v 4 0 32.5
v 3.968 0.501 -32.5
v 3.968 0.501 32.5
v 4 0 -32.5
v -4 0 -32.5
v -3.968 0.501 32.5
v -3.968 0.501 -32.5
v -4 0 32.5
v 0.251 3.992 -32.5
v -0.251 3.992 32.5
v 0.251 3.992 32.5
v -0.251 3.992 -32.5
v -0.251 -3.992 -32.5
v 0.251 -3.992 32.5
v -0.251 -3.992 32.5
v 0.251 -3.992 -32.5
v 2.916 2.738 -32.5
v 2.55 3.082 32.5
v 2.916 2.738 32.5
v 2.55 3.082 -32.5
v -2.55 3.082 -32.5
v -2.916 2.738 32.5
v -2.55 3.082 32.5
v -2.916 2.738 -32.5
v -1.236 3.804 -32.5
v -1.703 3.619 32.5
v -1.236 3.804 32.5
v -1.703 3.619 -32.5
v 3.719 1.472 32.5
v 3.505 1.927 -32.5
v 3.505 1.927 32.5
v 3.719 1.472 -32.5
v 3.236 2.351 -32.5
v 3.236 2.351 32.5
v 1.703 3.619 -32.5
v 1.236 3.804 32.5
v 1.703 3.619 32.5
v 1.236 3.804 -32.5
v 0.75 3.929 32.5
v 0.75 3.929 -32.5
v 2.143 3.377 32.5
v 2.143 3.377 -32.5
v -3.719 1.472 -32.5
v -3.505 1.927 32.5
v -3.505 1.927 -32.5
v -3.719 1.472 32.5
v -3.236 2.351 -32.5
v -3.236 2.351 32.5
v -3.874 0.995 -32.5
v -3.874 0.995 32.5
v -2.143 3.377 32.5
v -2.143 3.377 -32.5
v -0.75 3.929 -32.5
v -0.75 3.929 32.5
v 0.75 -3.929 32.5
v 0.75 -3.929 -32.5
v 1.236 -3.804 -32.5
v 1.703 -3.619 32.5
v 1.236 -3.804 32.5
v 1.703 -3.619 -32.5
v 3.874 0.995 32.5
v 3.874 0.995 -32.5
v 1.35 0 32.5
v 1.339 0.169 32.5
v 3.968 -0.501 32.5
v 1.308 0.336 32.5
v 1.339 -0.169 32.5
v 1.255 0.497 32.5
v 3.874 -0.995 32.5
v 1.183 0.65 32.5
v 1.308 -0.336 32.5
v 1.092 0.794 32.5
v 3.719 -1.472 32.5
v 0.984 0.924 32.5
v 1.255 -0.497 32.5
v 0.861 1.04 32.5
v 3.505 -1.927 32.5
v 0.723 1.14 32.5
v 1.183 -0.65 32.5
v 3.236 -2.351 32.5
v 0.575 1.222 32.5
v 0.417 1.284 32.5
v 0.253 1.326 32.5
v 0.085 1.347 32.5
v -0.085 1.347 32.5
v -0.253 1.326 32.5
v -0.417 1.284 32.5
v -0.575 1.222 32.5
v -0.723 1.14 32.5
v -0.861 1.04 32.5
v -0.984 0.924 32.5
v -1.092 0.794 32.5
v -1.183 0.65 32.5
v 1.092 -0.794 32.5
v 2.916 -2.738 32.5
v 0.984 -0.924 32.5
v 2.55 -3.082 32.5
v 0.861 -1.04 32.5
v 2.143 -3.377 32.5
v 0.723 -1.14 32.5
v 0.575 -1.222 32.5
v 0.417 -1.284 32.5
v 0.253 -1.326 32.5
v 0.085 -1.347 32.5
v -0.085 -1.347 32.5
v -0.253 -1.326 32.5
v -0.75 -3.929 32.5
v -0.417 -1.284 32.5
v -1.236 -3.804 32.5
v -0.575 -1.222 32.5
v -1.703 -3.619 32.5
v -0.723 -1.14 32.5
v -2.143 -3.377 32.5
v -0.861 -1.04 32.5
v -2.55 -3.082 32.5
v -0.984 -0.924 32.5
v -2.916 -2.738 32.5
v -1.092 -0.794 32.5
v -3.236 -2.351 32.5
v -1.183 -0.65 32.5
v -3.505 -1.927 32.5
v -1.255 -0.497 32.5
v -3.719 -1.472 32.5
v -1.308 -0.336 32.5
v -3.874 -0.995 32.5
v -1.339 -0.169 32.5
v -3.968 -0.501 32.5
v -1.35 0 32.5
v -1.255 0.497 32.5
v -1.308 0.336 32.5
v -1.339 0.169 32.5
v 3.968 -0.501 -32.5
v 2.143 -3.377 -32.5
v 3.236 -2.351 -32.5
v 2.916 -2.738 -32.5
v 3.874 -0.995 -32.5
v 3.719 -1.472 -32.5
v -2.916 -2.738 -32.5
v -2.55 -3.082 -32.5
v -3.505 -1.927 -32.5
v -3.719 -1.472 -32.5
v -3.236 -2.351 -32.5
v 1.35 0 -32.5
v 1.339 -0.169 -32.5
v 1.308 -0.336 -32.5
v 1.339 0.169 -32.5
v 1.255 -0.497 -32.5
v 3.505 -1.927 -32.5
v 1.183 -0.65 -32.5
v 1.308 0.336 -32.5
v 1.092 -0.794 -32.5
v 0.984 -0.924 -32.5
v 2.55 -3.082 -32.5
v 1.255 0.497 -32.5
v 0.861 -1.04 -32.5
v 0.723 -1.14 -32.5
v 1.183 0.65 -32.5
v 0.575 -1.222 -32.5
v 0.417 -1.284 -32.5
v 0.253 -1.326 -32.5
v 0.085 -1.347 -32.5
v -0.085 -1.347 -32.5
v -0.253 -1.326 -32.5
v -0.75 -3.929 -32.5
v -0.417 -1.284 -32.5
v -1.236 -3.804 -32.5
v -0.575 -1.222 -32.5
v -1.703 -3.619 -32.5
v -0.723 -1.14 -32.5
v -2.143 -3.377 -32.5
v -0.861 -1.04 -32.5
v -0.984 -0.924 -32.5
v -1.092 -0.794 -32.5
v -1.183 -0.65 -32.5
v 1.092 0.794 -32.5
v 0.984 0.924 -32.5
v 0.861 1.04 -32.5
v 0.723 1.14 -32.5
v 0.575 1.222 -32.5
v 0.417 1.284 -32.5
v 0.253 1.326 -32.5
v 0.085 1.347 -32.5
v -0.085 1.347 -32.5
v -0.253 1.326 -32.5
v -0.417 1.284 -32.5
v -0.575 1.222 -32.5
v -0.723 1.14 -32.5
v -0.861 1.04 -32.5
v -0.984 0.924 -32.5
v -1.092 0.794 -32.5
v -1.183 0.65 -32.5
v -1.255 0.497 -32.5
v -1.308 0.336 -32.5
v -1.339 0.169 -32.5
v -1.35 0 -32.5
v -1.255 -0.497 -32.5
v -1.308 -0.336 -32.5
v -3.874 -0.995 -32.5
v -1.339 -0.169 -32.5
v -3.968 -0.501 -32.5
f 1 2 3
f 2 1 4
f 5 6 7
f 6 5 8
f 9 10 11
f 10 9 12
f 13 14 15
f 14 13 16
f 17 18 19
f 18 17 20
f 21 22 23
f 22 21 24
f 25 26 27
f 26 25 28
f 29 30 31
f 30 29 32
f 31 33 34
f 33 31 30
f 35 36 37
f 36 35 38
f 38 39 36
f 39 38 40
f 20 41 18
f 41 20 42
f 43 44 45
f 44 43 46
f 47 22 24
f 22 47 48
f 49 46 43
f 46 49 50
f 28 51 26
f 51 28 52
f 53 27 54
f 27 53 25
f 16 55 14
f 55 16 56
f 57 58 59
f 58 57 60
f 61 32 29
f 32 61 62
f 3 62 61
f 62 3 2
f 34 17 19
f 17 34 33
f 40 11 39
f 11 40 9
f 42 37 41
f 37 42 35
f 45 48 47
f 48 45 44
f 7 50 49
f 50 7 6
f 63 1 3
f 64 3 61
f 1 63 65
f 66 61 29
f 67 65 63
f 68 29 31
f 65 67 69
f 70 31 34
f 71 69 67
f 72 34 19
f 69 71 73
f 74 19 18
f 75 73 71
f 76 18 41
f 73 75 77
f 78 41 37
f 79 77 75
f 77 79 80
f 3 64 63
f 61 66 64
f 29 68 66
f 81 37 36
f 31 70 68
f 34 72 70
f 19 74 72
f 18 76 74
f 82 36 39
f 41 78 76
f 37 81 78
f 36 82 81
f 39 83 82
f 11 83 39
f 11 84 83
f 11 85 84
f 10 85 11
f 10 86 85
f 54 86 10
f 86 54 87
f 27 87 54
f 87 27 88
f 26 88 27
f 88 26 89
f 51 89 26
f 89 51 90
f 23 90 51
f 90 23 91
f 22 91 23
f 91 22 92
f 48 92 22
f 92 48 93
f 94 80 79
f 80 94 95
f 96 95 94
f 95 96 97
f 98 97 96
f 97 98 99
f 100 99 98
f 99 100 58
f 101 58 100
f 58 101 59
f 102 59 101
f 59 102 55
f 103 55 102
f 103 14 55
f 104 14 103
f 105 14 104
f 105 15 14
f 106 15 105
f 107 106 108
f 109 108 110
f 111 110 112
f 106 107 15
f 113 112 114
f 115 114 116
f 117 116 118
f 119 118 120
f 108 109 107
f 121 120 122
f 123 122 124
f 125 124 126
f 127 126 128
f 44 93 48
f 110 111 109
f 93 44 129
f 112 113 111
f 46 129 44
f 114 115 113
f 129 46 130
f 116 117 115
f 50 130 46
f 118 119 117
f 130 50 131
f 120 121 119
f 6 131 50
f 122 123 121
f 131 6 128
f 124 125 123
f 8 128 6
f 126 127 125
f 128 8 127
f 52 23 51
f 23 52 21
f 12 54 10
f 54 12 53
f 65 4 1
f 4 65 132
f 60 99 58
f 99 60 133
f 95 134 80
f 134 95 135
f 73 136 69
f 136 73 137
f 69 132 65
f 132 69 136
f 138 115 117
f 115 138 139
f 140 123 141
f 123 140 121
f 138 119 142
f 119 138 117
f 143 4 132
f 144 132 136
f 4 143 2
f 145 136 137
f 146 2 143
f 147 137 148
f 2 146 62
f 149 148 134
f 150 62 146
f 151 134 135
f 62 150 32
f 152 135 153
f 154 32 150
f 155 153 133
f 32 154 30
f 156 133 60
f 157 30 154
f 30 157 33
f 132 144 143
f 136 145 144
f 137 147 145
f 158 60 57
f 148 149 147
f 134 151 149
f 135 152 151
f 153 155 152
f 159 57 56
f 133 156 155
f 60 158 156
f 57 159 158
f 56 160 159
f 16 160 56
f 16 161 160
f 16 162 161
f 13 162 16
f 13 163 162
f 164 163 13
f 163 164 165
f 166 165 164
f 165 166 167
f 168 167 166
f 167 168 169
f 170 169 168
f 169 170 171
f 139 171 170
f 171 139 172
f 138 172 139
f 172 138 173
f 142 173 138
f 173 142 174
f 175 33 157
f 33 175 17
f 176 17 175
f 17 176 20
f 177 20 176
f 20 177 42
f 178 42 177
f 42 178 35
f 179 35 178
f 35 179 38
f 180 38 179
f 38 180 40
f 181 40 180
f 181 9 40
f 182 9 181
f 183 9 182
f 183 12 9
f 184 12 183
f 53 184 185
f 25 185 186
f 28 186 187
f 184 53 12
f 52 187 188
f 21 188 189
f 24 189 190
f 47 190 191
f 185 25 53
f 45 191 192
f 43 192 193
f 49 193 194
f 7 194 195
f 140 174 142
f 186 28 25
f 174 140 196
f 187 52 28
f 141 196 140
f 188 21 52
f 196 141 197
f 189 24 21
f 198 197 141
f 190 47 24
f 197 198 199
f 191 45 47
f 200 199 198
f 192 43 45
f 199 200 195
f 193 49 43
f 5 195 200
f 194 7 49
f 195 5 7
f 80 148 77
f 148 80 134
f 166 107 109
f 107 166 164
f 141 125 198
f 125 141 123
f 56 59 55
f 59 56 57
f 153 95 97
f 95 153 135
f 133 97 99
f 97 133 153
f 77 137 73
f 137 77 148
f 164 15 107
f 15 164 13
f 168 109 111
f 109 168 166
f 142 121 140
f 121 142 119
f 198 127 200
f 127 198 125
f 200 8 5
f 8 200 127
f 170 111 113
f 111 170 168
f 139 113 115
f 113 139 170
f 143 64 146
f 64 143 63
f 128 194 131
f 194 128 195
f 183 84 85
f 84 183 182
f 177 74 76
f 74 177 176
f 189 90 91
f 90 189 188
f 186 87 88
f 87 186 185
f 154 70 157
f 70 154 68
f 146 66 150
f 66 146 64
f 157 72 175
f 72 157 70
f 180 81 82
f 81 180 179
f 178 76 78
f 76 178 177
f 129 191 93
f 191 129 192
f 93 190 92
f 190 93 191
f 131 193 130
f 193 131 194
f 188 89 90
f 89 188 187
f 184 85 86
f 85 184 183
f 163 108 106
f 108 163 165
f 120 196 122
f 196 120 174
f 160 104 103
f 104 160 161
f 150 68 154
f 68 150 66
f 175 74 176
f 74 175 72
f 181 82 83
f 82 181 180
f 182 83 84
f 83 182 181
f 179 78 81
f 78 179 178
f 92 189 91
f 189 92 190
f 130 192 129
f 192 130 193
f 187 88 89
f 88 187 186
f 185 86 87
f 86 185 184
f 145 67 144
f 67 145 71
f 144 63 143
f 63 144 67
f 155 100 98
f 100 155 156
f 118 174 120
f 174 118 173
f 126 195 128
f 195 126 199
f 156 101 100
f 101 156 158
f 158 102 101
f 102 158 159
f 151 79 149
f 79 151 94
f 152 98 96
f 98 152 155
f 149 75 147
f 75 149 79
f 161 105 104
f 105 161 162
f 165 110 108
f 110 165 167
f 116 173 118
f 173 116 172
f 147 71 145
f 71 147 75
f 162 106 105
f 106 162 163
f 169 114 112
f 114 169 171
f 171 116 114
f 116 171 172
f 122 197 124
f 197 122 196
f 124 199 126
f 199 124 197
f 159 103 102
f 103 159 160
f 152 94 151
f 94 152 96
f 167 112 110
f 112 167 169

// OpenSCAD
$fn = 50;


difference() {
	union() {
		translate(v = [0, 0, -32.5000000000]) {
			cylinder(h = 65, r = 4.0000000000);
		}
	}
	union() {
		translate(v = [0, 0, -100.0000000000]) {
			cylinder(h = 200, r = 1.3500000000);
		}
	}
}
